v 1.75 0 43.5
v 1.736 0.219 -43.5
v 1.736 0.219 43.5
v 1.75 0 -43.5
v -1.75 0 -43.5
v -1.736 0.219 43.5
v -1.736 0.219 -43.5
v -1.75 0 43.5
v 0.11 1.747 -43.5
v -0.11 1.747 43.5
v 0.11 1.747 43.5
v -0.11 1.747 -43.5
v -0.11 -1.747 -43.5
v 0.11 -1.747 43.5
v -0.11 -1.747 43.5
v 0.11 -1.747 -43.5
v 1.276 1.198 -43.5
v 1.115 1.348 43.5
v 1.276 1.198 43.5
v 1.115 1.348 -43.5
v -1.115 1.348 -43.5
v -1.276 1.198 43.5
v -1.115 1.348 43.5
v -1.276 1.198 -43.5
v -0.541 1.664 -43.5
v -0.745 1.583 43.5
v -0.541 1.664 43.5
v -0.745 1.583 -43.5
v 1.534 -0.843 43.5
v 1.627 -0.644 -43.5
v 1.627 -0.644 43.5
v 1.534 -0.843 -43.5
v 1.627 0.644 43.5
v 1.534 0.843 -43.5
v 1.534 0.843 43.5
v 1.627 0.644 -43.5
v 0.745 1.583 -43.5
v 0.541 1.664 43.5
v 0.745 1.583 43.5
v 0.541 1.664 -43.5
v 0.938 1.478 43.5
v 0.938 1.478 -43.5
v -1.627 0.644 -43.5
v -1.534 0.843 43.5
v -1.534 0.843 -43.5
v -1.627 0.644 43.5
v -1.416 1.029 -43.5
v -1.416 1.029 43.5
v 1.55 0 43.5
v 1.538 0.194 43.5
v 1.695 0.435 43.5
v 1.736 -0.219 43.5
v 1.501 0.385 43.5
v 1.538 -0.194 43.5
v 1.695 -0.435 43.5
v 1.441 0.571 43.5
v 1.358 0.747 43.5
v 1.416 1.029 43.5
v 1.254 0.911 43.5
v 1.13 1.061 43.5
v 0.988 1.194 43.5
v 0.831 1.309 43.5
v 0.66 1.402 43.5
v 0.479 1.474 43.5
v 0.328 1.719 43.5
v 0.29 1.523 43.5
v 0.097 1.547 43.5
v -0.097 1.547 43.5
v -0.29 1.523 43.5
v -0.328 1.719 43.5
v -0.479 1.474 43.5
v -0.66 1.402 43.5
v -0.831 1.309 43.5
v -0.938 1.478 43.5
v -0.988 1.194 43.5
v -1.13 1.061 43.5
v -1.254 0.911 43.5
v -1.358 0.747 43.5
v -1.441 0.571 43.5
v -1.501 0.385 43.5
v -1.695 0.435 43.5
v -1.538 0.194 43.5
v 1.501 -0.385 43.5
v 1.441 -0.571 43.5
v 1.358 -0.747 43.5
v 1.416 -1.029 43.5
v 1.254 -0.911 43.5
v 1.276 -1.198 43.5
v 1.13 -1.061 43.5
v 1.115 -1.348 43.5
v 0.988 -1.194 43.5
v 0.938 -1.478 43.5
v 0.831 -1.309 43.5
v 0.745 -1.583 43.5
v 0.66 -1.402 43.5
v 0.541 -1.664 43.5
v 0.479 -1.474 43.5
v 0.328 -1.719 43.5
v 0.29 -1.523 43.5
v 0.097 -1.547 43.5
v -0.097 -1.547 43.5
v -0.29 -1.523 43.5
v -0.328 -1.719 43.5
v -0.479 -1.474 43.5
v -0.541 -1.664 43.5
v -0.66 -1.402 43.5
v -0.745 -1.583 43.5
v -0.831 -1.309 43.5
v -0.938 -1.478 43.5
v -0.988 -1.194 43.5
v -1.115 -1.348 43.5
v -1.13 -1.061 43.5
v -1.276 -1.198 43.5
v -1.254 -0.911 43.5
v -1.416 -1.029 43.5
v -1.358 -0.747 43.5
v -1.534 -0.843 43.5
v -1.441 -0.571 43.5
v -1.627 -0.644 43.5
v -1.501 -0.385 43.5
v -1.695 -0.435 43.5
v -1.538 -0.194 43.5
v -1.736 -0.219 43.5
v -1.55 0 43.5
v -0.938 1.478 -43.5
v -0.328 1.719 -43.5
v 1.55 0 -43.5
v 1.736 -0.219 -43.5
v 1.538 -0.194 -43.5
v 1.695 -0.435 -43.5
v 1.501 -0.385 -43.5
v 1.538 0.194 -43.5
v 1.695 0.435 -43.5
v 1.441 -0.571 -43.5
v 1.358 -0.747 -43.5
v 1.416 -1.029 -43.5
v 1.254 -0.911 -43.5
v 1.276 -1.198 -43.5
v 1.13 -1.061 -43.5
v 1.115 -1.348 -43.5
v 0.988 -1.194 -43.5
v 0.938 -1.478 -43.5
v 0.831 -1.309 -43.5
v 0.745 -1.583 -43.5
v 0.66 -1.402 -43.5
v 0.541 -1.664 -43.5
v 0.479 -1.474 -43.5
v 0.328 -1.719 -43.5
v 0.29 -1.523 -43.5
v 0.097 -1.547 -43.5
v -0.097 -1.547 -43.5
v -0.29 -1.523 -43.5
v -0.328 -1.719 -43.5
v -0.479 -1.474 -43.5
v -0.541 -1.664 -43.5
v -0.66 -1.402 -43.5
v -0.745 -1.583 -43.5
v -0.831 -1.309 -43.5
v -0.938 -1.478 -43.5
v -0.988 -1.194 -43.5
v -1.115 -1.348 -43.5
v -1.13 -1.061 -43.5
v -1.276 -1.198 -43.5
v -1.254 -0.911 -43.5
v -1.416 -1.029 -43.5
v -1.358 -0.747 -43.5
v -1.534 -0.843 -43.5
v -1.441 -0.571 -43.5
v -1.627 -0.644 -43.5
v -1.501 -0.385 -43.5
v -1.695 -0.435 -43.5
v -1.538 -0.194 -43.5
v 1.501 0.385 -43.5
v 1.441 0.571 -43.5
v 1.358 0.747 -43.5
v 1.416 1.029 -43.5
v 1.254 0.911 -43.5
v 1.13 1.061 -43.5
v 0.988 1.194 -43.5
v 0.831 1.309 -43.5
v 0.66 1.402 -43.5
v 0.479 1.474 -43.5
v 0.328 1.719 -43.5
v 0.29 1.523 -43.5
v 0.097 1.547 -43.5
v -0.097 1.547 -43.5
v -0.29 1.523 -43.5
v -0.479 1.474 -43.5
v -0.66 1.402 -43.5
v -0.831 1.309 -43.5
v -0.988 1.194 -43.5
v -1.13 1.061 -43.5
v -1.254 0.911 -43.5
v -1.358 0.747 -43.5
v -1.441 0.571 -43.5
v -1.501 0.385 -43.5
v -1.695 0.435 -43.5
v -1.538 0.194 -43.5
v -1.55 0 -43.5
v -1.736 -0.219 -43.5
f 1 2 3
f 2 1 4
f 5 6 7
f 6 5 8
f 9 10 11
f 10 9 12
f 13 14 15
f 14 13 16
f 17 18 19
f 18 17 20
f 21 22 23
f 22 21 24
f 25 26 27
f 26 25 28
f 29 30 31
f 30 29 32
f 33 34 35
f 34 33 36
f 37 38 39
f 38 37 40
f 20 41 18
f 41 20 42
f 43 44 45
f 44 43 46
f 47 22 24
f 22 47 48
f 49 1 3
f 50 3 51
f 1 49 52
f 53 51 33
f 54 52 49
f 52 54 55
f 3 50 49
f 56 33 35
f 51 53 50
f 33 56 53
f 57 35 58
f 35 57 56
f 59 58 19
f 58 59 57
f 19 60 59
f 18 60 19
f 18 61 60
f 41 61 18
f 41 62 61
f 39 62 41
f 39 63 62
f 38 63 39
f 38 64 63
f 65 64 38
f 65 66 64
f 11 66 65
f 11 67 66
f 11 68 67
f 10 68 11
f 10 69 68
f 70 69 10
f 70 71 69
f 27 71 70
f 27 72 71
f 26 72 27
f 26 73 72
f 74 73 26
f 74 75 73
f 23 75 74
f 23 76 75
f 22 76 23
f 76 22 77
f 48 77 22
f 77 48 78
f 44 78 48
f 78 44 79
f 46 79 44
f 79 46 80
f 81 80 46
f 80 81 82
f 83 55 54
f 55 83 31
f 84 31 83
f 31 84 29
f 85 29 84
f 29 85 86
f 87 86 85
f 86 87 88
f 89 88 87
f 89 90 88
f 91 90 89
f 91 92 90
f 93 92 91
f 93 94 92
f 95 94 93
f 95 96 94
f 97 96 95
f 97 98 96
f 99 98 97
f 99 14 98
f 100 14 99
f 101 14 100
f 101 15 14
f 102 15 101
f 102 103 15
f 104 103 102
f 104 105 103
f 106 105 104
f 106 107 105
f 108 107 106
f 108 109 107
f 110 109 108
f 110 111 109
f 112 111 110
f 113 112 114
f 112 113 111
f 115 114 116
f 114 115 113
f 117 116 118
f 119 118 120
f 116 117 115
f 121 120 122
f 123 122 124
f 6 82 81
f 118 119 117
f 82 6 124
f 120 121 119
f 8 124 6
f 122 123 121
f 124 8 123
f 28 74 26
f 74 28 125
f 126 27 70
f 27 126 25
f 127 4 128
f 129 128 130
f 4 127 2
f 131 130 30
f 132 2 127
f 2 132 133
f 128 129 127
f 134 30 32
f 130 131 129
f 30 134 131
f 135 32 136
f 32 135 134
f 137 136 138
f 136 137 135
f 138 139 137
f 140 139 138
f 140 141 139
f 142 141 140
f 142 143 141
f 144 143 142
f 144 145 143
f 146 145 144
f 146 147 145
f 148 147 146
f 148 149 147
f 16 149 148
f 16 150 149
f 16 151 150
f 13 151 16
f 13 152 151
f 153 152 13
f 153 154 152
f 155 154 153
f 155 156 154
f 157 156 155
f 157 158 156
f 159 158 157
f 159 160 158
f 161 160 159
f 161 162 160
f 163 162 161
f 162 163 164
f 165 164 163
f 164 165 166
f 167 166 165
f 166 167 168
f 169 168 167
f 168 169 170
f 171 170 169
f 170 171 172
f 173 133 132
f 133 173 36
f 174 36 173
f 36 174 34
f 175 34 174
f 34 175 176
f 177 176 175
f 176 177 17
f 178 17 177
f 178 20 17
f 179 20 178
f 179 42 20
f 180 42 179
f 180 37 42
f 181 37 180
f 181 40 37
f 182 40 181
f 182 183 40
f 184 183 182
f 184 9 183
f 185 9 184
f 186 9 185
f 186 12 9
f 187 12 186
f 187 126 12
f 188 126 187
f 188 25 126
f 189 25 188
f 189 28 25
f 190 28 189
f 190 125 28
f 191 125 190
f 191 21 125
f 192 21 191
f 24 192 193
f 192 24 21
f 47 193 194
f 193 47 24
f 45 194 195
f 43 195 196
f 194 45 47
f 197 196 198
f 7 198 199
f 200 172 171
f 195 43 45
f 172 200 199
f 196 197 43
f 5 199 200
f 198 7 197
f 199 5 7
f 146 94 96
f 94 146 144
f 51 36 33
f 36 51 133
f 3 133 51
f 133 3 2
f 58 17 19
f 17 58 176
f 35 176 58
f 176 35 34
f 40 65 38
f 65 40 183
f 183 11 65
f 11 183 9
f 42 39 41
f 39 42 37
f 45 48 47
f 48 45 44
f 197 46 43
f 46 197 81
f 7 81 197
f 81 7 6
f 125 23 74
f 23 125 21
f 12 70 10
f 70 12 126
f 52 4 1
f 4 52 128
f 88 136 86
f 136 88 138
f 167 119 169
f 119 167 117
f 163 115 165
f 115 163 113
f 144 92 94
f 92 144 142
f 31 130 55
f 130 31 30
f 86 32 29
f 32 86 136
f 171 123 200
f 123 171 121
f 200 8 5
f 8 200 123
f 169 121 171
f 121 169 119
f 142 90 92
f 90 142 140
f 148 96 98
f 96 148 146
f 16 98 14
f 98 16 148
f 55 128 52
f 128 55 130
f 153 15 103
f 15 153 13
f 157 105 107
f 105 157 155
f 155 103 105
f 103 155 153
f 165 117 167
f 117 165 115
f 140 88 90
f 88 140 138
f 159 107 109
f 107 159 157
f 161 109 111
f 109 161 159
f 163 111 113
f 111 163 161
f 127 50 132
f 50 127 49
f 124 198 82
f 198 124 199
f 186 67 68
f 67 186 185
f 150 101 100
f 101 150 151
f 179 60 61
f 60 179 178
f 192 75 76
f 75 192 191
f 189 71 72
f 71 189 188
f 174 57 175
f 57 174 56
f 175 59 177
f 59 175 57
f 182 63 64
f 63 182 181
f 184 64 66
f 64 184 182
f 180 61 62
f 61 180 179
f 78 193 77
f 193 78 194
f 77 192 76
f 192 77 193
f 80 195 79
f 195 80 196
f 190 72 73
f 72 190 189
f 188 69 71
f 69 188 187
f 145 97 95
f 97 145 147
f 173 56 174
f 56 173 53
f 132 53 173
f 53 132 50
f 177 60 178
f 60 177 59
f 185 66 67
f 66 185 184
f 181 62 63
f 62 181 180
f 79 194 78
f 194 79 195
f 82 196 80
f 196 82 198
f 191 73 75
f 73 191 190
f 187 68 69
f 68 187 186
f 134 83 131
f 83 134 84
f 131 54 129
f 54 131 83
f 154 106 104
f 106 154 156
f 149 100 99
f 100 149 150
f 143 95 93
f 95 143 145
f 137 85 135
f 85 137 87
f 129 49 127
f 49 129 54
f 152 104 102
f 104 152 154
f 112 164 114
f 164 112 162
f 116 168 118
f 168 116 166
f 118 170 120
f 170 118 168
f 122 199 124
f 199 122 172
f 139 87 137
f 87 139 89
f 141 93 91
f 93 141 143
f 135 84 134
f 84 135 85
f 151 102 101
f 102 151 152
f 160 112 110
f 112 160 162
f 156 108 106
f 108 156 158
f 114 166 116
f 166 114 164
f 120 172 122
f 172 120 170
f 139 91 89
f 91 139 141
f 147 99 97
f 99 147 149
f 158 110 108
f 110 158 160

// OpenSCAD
$fn = 50;


difference() {
	union() {
		translate(v = [0, 0, -43.5000000000]) {
			cylinder(h = 87, r = 1.7500000000);
		}
	}
	union() {
		translate(v = [0, 0, -100.0000000000]) {
			cylinder(h = 200, r = 1.5500000000);
		}
	}
}
